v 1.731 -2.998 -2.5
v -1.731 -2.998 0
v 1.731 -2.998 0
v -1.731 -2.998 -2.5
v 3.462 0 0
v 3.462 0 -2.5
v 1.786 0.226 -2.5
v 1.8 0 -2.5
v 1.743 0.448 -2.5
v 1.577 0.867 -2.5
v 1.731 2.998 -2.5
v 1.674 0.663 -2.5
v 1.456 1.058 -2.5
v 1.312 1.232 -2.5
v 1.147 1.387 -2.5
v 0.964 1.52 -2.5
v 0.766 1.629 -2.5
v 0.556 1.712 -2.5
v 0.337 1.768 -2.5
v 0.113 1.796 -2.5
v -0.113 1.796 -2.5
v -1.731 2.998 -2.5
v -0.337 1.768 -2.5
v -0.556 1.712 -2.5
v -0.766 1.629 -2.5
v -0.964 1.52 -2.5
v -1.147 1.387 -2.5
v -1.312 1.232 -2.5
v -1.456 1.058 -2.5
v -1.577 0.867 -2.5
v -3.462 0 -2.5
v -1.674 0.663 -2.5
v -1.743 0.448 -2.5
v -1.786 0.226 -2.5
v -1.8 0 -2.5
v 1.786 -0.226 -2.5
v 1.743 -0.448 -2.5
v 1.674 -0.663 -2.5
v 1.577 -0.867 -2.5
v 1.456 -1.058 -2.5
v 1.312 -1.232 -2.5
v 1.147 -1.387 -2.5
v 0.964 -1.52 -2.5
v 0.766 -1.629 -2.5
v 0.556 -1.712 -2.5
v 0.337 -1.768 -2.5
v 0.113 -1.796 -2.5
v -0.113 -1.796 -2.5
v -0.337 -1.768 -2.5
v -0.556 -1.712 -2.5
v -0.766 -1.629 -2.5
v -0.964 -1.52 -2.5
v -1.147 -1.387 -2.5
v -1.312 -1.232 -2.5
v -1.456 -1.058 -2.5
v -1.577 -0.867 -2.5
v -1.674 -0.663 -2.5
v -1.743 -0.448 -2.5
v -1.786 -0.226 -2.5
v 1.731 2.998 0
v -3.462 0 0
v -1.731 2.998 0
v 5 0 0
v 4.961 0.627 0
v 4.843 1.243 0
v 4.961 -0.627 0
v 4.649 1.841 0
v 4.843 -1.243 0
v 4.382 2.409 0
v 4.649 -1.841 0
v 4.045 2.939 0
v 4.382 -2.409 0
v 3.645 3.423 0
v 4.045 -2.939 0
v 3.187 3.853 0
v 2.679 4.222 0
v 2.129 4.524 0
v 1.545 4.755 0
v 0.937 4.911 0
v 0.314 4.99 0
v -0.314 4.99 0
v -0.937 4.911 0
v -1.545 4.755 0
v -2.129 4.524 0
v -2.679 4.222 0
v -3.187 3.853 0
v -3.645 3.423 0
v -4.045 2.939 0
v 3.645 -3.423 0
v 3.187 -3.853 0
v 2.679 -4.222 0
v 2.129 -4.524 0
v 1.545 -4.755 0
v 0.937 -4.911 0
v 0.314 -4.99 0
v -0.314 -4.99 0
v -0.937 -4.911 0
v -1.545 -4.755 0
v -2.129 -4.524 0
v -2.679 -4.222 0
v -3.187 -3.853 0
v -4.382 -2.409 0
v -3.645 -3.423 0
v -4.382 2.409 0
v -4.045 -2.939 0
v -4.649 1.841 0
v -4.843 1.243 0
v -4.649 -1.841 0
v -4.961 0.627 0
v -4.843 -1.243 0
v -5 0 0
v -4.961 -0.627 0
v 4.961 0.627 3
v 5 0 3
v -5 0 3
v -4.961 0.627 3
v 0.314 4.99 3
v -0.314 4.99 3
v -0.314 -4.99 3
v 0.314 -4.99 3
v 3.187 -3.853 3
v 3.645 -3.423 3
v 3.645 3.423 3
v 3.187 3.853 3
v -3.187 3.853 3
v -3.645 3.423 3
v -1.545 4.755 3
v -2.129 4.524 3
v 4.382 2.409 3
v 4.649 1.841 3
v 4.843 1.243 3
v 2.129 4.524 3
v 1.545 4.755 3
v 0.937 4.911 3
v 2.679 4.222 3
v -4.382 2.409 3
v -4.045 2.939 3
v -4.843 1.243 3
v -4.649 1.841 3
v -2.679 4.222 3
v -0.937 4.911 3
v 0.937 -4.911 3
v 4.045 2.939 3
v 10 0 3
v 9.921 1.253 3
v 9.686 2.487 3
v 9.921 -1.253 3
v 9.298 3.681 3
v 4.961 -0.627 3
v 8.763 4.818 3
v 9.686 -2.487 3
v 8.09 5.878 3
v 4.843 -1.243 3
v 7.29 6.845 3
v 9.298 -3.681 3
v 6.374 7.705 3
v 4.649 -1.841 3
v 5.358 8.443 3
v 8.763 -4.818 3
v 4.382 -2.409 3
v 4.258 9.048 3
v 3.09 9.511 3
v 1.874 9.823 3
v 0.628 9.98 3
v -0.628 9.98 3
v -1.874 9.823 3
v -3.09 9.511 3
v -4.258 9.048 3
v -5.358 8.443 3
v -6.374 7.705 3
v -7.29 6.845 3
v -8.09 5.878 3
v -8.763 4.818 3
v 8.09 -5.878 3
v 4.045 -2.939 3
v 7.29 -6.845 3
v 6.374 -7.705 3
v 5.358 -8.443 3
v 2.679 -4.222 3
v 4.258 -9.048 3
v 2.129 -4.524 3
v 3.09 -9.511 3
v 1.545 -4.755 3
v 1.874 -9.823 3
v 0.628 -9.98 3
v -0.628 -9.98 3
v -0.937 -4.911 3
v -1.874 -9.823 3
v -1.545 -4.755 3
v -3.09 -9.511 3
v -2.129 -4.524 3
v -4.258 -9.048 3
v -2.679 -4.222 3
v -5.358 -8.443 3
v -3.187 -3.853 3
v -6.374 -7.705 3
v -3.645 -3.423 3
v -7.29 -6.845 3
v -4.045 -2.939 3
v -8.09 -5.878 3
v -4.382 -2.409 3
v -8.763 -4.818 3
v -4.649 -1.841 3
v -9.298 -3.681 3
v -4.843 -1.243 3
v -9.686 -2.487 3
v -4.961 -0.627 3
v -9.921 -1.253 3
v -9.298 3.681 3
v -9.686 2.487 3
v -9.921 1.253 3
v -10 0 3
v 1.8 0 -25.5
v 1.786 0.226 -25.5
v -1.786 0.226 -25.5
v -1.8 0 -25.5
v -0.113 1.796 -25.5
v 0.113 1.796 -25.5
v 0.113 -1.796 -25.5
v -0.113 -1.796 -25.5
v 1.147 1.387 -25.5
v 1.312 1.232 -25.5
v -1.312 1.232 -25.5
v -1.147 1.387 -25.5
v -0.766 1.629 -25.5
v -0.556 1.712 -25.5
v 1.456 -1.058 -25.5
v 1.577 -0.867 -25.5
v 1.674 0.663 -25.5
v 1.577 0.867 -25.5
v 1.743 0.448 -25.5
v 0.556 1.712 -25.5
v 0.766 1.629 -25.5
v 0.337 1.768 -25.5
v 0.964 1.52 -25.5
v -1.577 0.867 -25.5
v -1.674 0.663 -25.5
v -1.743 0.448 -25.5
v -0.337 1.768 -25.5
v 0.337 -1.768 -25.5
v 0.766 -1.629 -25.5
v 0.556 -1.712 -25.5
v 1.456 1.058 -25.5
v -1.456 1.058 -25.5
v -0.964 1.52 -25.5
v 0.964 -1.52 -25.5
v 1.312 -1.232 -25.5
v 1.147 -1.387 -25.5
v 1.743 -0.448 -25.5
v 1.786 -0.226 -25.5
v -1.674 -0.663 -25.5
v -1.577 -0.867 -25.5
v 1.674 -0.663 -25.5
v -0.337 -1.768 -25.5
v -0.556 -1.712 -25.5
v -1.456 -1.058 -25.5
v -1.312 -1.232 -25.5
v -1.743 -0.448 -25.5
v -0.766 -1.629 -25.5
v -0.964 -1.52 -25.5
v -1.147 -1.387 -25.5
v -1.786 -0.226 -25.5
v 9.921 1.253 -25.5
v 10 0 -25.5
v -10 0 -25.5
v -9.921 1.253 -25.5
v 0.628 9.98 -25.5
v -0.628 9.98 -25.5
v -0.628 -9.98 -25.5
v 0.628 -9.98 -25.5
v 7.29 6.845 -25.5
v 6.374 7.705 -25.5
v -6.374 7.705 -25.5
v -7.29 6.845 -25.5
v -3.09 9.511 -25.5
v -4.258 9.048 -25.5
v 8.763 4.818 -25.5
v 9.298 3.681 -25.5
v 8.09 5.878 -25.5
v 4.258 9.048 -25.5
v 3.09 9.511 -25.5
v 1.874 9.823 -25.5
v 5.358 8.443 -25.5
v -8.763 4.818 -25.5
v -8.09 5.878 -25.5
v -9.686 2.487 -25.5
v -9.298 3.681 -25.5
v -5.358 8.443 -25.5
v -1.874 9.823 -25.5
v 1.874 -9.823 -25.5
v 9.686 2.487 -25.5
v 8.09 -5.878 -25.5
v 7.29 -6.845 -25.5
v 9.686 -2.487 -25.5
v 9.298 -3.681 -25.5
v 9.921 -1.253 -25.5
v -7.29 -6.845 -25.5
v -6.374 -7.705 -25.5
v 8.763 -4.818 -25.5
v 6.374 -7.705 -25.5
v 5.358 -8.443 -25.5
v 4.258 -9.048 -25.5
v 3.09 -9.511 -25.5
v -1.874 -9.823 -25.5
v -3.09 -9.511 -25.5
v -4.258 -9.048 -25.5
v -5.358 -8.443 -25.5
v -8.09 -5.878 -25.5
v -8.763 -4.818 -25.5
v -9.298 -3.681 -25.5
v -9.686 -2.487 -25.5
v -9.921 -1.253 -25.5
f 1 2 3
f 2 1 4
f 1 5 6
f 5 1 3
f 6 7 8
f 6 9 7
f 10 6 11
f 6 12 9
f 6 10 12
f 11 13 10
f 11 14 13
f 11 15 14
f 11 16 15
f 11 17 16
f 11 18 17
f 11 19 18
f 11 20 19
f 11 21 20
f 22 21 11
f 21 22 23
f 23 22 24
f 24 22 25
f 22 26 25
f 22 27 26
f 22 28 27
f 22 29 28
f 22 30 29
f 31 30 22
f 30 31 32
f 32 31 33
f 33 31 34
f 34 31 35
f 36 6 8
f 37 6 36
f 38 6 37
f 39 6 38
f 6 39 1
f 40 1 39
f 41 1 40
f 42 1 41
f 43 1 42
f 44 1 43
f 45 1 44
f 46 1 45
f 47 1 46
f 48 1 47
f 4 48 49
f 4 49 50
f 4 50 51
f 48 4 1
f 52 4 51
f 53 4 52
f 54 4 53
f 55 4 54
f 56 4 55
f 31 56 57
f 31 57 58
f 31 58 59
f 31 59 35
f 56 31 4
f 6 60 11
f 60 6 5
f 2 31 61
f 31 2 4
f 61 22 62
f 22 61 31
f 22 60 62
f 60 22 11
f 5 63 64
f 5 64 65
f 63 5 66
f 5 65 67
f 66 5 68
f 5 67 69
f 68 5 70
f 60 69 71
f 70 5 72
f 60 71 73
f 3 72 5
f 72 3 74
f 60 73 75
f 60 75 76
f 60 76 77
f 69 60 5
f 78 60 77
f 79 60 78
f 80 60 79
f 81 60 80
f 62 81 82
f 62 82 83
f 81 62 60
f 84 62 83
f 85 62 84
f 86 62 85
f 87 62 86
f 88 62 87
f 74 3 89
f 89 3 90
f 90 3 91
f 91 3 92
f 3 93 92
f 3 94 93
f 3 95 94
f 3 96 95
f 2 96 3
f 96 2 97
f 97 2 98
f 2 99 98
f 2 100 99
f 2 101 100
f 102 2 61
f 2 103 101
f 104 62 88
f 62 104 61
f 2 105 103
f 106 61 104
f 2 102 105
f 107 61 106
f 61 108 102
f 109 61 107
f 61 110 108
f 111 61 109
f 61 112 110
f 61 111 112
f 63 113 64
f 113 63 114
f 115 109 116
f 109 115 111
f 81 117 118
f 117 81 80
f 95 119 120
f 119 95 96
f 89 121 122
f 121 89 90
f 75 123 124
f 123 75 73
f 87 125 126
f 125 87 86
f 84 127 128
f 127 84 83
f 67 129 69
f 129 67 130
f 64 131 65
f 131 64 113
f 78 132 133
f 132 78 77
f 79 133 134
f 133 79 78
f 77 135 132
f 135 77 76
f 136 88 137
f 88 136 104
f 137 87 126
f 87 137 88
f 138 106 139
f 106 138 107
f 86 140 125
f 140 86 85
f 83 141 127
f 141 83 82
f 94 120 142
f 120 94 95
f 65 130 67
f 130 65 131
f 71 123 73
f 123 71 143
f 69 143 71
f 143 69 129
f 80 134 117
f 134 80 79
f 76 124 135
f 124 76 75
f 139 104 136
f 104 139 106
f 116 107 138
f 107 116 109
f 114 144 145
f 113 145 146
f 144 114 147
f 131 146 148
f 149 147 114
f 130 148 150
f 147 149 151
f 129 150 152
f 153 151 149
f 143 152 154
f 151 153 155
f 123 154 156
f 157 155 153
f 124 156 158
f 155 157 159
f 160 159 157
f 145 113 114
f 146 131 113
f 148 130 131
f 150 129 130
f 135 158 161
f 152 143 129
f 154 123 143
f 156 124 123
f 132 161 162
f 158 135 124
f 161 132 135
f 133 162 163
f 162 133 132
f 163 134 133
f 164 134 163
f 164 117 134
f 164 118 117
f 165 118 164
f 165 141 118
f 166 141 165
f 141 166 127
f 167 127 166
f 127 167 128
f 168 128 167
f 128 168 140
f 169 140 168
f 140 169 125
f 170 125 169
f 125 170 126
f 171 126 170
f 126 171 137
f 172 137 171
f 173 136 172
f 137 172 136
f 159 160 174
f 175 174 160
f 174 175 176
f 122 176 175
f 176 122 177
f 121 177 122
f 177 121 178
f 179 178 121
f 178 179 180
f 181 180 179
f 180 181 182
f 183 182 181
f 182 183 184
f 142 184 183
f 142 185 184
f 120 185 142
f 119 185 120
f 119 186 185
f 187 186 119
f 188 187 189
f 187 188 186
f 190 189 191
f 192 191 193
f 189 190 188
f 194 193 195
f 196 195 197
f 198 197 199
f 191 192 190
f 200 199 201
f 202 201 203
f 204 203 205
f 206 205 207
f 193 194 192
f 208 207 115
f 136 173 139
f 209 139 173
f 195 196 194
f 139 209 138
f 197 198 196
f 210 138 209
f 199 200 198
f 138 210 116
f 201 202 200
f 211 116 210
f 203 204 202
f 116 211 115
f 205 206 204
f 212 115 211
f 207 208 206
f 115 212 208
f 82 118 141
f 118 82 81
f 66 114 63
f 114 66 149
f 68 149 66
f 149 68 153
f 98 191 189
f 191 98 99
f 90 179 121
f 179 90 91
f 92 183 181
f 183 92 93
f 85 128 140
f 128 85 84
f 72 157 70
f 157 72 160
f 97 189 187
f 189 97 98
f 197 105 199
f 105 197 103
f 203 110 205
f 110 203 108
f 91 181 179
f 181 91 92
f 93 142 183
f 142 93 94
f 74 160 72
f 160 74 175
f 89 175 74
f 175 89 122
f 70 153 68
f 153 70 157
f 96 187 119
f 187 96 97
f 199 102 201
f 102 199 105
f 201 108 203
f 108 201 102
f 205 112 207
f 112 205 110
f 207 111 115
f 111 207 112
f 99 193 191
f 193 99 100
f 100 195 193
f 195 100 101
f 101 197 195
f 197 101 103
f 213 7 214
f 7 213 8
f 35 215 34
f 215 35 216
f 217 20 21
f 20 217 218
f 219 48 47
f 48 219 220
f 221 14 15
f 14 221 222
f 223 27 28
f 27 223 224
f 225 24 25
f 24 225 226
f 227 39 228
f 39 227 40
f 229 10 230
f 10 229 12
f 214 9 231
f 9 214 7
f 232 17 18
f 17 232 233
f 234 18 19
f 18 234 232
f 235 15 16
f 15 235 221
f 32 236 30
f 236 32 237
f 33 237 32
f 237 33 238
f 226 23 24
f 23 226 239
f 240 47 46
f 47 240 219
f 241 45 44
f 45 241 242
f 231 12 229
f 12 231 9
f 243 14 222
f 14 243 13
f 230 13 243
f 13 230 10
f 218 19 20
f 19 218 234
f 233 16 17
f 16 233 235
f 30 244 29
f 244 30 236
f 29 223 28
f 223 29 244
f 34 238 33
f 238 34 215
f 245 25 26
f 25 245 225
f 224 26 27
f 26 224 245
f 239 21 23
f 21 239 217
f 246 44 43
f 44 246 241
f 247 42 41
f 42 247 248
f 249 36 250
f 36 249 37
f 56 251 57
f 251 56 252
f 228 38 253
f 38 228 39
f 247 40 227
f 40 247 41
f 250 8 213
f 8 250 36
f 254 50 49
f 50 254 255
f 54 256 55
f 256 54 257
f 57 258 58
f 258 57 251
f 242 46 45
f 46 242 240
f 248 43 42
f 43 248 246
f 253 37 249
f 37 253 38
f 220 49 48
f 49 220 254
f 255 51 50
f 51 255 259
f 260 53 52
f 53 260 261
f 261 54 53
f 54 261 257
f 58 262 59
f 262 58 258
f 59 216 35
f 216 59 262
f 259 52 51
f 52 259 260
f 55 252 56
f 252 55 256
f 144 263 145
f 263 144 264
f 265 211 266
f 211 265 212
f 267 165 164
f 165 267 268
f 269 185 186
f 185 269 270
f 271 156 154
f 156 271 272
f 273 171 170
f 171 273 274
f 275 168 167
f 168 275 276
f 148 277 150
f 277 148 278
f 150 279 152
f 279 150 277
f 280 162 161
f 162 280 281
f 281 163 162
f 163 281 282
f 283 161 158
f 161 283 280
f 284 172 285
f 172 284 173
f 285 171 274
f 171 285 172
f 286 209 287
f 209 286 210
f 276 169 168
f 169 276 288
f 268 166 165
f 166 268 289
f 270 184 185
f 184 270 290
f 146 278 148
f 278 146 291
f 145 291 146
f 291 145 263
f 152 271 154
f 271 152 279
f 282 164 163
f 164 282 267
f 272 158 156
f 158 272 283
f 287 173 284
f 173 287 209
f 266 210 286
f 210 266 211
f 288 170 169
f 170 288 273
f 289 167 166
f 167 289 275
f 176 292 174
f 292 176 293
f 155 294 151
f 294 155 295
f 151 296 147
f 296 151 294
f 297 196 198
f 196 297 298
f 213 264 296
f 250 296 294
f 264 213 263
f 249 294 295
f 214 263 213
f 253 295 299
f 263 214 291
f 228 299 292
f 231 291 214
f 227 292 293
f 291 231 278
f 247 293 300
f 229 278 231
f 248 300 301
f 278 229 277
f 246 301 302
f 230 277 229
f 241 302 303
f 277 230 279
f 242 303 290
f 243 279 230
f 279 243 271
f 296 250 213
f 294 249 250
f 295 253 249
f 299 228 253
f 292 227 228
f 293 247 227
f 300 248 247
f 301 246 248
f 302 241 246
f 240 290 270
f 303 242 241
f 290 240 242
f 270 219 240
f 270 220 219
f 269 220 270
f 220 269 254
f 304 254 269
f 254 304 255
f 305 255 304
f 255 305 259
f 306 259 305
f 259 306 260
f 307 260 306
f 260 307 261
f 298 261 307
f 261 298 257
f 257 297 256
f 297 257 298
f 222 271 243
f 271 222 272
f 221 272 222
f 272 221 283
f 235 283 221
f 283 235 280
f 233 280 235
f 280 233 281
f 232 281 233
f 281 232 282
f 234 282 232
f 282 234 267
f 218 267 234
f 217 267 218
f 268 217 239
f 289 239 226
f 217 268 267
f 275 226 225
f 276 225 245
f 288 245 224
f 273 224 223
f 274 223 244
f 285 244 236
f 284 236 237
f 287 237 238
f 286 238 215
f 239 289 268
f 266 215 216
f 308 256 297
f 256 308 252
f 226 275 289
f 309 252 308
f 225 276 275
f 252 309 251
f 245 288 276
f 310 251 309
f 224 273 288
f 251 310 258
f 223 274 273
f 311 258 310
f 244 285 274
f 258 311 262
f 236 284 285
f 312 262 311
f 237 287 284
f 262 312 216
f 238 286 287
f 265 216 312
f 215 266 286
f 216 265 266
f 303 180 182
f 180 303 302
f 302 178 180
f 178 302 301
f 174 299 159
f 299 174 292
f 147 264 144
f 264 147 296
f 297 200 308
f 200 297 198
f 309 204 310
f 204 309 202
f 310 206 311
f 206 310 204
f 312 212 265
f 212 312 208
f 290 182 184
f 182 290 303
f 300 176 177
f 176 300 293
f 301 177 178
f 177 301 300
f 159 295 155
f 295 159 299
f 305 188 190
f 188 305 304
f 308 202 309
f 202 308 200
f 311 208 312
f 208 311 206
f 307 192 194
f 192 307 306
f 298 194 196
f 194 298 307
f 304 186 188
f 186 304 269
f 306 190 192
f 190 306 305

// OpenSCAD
$fn = 50;


difference() {
	union() {
		translate(v = [0, 0, -25.5000000000]) {
			cylinder(h = 28.5000000000, r = 10.0000000000);
		}
	}
	union() {
		translate(v = [0, 0, 0]) {
			rotate(a = [0, 0, 0]) {
				difference() {
					union() {
						translate(v = [0, 0, -2.5000000000]) {
							linear_extrude(height = 2.5000000000) {
								polygon(points = [[3.4620000000, 0.0000000000], [1.7310000000, 2.9981799479], [-1.7310000000, 2.9981799479], [-3.4620000000, 0.0000000000], [-1.7310000000, -2.9981799479], [1.7310000000, -2.9981799479]]);
							}
						}
					}
					union();
				}
			}
		}
		#cylinder(h = 3, r = 5.0000000000);
		#translate(v = [0, 0, -100.0000000000]) {
			cylinder(h = 200, r = 1.8000000000);
		}
	}
}
